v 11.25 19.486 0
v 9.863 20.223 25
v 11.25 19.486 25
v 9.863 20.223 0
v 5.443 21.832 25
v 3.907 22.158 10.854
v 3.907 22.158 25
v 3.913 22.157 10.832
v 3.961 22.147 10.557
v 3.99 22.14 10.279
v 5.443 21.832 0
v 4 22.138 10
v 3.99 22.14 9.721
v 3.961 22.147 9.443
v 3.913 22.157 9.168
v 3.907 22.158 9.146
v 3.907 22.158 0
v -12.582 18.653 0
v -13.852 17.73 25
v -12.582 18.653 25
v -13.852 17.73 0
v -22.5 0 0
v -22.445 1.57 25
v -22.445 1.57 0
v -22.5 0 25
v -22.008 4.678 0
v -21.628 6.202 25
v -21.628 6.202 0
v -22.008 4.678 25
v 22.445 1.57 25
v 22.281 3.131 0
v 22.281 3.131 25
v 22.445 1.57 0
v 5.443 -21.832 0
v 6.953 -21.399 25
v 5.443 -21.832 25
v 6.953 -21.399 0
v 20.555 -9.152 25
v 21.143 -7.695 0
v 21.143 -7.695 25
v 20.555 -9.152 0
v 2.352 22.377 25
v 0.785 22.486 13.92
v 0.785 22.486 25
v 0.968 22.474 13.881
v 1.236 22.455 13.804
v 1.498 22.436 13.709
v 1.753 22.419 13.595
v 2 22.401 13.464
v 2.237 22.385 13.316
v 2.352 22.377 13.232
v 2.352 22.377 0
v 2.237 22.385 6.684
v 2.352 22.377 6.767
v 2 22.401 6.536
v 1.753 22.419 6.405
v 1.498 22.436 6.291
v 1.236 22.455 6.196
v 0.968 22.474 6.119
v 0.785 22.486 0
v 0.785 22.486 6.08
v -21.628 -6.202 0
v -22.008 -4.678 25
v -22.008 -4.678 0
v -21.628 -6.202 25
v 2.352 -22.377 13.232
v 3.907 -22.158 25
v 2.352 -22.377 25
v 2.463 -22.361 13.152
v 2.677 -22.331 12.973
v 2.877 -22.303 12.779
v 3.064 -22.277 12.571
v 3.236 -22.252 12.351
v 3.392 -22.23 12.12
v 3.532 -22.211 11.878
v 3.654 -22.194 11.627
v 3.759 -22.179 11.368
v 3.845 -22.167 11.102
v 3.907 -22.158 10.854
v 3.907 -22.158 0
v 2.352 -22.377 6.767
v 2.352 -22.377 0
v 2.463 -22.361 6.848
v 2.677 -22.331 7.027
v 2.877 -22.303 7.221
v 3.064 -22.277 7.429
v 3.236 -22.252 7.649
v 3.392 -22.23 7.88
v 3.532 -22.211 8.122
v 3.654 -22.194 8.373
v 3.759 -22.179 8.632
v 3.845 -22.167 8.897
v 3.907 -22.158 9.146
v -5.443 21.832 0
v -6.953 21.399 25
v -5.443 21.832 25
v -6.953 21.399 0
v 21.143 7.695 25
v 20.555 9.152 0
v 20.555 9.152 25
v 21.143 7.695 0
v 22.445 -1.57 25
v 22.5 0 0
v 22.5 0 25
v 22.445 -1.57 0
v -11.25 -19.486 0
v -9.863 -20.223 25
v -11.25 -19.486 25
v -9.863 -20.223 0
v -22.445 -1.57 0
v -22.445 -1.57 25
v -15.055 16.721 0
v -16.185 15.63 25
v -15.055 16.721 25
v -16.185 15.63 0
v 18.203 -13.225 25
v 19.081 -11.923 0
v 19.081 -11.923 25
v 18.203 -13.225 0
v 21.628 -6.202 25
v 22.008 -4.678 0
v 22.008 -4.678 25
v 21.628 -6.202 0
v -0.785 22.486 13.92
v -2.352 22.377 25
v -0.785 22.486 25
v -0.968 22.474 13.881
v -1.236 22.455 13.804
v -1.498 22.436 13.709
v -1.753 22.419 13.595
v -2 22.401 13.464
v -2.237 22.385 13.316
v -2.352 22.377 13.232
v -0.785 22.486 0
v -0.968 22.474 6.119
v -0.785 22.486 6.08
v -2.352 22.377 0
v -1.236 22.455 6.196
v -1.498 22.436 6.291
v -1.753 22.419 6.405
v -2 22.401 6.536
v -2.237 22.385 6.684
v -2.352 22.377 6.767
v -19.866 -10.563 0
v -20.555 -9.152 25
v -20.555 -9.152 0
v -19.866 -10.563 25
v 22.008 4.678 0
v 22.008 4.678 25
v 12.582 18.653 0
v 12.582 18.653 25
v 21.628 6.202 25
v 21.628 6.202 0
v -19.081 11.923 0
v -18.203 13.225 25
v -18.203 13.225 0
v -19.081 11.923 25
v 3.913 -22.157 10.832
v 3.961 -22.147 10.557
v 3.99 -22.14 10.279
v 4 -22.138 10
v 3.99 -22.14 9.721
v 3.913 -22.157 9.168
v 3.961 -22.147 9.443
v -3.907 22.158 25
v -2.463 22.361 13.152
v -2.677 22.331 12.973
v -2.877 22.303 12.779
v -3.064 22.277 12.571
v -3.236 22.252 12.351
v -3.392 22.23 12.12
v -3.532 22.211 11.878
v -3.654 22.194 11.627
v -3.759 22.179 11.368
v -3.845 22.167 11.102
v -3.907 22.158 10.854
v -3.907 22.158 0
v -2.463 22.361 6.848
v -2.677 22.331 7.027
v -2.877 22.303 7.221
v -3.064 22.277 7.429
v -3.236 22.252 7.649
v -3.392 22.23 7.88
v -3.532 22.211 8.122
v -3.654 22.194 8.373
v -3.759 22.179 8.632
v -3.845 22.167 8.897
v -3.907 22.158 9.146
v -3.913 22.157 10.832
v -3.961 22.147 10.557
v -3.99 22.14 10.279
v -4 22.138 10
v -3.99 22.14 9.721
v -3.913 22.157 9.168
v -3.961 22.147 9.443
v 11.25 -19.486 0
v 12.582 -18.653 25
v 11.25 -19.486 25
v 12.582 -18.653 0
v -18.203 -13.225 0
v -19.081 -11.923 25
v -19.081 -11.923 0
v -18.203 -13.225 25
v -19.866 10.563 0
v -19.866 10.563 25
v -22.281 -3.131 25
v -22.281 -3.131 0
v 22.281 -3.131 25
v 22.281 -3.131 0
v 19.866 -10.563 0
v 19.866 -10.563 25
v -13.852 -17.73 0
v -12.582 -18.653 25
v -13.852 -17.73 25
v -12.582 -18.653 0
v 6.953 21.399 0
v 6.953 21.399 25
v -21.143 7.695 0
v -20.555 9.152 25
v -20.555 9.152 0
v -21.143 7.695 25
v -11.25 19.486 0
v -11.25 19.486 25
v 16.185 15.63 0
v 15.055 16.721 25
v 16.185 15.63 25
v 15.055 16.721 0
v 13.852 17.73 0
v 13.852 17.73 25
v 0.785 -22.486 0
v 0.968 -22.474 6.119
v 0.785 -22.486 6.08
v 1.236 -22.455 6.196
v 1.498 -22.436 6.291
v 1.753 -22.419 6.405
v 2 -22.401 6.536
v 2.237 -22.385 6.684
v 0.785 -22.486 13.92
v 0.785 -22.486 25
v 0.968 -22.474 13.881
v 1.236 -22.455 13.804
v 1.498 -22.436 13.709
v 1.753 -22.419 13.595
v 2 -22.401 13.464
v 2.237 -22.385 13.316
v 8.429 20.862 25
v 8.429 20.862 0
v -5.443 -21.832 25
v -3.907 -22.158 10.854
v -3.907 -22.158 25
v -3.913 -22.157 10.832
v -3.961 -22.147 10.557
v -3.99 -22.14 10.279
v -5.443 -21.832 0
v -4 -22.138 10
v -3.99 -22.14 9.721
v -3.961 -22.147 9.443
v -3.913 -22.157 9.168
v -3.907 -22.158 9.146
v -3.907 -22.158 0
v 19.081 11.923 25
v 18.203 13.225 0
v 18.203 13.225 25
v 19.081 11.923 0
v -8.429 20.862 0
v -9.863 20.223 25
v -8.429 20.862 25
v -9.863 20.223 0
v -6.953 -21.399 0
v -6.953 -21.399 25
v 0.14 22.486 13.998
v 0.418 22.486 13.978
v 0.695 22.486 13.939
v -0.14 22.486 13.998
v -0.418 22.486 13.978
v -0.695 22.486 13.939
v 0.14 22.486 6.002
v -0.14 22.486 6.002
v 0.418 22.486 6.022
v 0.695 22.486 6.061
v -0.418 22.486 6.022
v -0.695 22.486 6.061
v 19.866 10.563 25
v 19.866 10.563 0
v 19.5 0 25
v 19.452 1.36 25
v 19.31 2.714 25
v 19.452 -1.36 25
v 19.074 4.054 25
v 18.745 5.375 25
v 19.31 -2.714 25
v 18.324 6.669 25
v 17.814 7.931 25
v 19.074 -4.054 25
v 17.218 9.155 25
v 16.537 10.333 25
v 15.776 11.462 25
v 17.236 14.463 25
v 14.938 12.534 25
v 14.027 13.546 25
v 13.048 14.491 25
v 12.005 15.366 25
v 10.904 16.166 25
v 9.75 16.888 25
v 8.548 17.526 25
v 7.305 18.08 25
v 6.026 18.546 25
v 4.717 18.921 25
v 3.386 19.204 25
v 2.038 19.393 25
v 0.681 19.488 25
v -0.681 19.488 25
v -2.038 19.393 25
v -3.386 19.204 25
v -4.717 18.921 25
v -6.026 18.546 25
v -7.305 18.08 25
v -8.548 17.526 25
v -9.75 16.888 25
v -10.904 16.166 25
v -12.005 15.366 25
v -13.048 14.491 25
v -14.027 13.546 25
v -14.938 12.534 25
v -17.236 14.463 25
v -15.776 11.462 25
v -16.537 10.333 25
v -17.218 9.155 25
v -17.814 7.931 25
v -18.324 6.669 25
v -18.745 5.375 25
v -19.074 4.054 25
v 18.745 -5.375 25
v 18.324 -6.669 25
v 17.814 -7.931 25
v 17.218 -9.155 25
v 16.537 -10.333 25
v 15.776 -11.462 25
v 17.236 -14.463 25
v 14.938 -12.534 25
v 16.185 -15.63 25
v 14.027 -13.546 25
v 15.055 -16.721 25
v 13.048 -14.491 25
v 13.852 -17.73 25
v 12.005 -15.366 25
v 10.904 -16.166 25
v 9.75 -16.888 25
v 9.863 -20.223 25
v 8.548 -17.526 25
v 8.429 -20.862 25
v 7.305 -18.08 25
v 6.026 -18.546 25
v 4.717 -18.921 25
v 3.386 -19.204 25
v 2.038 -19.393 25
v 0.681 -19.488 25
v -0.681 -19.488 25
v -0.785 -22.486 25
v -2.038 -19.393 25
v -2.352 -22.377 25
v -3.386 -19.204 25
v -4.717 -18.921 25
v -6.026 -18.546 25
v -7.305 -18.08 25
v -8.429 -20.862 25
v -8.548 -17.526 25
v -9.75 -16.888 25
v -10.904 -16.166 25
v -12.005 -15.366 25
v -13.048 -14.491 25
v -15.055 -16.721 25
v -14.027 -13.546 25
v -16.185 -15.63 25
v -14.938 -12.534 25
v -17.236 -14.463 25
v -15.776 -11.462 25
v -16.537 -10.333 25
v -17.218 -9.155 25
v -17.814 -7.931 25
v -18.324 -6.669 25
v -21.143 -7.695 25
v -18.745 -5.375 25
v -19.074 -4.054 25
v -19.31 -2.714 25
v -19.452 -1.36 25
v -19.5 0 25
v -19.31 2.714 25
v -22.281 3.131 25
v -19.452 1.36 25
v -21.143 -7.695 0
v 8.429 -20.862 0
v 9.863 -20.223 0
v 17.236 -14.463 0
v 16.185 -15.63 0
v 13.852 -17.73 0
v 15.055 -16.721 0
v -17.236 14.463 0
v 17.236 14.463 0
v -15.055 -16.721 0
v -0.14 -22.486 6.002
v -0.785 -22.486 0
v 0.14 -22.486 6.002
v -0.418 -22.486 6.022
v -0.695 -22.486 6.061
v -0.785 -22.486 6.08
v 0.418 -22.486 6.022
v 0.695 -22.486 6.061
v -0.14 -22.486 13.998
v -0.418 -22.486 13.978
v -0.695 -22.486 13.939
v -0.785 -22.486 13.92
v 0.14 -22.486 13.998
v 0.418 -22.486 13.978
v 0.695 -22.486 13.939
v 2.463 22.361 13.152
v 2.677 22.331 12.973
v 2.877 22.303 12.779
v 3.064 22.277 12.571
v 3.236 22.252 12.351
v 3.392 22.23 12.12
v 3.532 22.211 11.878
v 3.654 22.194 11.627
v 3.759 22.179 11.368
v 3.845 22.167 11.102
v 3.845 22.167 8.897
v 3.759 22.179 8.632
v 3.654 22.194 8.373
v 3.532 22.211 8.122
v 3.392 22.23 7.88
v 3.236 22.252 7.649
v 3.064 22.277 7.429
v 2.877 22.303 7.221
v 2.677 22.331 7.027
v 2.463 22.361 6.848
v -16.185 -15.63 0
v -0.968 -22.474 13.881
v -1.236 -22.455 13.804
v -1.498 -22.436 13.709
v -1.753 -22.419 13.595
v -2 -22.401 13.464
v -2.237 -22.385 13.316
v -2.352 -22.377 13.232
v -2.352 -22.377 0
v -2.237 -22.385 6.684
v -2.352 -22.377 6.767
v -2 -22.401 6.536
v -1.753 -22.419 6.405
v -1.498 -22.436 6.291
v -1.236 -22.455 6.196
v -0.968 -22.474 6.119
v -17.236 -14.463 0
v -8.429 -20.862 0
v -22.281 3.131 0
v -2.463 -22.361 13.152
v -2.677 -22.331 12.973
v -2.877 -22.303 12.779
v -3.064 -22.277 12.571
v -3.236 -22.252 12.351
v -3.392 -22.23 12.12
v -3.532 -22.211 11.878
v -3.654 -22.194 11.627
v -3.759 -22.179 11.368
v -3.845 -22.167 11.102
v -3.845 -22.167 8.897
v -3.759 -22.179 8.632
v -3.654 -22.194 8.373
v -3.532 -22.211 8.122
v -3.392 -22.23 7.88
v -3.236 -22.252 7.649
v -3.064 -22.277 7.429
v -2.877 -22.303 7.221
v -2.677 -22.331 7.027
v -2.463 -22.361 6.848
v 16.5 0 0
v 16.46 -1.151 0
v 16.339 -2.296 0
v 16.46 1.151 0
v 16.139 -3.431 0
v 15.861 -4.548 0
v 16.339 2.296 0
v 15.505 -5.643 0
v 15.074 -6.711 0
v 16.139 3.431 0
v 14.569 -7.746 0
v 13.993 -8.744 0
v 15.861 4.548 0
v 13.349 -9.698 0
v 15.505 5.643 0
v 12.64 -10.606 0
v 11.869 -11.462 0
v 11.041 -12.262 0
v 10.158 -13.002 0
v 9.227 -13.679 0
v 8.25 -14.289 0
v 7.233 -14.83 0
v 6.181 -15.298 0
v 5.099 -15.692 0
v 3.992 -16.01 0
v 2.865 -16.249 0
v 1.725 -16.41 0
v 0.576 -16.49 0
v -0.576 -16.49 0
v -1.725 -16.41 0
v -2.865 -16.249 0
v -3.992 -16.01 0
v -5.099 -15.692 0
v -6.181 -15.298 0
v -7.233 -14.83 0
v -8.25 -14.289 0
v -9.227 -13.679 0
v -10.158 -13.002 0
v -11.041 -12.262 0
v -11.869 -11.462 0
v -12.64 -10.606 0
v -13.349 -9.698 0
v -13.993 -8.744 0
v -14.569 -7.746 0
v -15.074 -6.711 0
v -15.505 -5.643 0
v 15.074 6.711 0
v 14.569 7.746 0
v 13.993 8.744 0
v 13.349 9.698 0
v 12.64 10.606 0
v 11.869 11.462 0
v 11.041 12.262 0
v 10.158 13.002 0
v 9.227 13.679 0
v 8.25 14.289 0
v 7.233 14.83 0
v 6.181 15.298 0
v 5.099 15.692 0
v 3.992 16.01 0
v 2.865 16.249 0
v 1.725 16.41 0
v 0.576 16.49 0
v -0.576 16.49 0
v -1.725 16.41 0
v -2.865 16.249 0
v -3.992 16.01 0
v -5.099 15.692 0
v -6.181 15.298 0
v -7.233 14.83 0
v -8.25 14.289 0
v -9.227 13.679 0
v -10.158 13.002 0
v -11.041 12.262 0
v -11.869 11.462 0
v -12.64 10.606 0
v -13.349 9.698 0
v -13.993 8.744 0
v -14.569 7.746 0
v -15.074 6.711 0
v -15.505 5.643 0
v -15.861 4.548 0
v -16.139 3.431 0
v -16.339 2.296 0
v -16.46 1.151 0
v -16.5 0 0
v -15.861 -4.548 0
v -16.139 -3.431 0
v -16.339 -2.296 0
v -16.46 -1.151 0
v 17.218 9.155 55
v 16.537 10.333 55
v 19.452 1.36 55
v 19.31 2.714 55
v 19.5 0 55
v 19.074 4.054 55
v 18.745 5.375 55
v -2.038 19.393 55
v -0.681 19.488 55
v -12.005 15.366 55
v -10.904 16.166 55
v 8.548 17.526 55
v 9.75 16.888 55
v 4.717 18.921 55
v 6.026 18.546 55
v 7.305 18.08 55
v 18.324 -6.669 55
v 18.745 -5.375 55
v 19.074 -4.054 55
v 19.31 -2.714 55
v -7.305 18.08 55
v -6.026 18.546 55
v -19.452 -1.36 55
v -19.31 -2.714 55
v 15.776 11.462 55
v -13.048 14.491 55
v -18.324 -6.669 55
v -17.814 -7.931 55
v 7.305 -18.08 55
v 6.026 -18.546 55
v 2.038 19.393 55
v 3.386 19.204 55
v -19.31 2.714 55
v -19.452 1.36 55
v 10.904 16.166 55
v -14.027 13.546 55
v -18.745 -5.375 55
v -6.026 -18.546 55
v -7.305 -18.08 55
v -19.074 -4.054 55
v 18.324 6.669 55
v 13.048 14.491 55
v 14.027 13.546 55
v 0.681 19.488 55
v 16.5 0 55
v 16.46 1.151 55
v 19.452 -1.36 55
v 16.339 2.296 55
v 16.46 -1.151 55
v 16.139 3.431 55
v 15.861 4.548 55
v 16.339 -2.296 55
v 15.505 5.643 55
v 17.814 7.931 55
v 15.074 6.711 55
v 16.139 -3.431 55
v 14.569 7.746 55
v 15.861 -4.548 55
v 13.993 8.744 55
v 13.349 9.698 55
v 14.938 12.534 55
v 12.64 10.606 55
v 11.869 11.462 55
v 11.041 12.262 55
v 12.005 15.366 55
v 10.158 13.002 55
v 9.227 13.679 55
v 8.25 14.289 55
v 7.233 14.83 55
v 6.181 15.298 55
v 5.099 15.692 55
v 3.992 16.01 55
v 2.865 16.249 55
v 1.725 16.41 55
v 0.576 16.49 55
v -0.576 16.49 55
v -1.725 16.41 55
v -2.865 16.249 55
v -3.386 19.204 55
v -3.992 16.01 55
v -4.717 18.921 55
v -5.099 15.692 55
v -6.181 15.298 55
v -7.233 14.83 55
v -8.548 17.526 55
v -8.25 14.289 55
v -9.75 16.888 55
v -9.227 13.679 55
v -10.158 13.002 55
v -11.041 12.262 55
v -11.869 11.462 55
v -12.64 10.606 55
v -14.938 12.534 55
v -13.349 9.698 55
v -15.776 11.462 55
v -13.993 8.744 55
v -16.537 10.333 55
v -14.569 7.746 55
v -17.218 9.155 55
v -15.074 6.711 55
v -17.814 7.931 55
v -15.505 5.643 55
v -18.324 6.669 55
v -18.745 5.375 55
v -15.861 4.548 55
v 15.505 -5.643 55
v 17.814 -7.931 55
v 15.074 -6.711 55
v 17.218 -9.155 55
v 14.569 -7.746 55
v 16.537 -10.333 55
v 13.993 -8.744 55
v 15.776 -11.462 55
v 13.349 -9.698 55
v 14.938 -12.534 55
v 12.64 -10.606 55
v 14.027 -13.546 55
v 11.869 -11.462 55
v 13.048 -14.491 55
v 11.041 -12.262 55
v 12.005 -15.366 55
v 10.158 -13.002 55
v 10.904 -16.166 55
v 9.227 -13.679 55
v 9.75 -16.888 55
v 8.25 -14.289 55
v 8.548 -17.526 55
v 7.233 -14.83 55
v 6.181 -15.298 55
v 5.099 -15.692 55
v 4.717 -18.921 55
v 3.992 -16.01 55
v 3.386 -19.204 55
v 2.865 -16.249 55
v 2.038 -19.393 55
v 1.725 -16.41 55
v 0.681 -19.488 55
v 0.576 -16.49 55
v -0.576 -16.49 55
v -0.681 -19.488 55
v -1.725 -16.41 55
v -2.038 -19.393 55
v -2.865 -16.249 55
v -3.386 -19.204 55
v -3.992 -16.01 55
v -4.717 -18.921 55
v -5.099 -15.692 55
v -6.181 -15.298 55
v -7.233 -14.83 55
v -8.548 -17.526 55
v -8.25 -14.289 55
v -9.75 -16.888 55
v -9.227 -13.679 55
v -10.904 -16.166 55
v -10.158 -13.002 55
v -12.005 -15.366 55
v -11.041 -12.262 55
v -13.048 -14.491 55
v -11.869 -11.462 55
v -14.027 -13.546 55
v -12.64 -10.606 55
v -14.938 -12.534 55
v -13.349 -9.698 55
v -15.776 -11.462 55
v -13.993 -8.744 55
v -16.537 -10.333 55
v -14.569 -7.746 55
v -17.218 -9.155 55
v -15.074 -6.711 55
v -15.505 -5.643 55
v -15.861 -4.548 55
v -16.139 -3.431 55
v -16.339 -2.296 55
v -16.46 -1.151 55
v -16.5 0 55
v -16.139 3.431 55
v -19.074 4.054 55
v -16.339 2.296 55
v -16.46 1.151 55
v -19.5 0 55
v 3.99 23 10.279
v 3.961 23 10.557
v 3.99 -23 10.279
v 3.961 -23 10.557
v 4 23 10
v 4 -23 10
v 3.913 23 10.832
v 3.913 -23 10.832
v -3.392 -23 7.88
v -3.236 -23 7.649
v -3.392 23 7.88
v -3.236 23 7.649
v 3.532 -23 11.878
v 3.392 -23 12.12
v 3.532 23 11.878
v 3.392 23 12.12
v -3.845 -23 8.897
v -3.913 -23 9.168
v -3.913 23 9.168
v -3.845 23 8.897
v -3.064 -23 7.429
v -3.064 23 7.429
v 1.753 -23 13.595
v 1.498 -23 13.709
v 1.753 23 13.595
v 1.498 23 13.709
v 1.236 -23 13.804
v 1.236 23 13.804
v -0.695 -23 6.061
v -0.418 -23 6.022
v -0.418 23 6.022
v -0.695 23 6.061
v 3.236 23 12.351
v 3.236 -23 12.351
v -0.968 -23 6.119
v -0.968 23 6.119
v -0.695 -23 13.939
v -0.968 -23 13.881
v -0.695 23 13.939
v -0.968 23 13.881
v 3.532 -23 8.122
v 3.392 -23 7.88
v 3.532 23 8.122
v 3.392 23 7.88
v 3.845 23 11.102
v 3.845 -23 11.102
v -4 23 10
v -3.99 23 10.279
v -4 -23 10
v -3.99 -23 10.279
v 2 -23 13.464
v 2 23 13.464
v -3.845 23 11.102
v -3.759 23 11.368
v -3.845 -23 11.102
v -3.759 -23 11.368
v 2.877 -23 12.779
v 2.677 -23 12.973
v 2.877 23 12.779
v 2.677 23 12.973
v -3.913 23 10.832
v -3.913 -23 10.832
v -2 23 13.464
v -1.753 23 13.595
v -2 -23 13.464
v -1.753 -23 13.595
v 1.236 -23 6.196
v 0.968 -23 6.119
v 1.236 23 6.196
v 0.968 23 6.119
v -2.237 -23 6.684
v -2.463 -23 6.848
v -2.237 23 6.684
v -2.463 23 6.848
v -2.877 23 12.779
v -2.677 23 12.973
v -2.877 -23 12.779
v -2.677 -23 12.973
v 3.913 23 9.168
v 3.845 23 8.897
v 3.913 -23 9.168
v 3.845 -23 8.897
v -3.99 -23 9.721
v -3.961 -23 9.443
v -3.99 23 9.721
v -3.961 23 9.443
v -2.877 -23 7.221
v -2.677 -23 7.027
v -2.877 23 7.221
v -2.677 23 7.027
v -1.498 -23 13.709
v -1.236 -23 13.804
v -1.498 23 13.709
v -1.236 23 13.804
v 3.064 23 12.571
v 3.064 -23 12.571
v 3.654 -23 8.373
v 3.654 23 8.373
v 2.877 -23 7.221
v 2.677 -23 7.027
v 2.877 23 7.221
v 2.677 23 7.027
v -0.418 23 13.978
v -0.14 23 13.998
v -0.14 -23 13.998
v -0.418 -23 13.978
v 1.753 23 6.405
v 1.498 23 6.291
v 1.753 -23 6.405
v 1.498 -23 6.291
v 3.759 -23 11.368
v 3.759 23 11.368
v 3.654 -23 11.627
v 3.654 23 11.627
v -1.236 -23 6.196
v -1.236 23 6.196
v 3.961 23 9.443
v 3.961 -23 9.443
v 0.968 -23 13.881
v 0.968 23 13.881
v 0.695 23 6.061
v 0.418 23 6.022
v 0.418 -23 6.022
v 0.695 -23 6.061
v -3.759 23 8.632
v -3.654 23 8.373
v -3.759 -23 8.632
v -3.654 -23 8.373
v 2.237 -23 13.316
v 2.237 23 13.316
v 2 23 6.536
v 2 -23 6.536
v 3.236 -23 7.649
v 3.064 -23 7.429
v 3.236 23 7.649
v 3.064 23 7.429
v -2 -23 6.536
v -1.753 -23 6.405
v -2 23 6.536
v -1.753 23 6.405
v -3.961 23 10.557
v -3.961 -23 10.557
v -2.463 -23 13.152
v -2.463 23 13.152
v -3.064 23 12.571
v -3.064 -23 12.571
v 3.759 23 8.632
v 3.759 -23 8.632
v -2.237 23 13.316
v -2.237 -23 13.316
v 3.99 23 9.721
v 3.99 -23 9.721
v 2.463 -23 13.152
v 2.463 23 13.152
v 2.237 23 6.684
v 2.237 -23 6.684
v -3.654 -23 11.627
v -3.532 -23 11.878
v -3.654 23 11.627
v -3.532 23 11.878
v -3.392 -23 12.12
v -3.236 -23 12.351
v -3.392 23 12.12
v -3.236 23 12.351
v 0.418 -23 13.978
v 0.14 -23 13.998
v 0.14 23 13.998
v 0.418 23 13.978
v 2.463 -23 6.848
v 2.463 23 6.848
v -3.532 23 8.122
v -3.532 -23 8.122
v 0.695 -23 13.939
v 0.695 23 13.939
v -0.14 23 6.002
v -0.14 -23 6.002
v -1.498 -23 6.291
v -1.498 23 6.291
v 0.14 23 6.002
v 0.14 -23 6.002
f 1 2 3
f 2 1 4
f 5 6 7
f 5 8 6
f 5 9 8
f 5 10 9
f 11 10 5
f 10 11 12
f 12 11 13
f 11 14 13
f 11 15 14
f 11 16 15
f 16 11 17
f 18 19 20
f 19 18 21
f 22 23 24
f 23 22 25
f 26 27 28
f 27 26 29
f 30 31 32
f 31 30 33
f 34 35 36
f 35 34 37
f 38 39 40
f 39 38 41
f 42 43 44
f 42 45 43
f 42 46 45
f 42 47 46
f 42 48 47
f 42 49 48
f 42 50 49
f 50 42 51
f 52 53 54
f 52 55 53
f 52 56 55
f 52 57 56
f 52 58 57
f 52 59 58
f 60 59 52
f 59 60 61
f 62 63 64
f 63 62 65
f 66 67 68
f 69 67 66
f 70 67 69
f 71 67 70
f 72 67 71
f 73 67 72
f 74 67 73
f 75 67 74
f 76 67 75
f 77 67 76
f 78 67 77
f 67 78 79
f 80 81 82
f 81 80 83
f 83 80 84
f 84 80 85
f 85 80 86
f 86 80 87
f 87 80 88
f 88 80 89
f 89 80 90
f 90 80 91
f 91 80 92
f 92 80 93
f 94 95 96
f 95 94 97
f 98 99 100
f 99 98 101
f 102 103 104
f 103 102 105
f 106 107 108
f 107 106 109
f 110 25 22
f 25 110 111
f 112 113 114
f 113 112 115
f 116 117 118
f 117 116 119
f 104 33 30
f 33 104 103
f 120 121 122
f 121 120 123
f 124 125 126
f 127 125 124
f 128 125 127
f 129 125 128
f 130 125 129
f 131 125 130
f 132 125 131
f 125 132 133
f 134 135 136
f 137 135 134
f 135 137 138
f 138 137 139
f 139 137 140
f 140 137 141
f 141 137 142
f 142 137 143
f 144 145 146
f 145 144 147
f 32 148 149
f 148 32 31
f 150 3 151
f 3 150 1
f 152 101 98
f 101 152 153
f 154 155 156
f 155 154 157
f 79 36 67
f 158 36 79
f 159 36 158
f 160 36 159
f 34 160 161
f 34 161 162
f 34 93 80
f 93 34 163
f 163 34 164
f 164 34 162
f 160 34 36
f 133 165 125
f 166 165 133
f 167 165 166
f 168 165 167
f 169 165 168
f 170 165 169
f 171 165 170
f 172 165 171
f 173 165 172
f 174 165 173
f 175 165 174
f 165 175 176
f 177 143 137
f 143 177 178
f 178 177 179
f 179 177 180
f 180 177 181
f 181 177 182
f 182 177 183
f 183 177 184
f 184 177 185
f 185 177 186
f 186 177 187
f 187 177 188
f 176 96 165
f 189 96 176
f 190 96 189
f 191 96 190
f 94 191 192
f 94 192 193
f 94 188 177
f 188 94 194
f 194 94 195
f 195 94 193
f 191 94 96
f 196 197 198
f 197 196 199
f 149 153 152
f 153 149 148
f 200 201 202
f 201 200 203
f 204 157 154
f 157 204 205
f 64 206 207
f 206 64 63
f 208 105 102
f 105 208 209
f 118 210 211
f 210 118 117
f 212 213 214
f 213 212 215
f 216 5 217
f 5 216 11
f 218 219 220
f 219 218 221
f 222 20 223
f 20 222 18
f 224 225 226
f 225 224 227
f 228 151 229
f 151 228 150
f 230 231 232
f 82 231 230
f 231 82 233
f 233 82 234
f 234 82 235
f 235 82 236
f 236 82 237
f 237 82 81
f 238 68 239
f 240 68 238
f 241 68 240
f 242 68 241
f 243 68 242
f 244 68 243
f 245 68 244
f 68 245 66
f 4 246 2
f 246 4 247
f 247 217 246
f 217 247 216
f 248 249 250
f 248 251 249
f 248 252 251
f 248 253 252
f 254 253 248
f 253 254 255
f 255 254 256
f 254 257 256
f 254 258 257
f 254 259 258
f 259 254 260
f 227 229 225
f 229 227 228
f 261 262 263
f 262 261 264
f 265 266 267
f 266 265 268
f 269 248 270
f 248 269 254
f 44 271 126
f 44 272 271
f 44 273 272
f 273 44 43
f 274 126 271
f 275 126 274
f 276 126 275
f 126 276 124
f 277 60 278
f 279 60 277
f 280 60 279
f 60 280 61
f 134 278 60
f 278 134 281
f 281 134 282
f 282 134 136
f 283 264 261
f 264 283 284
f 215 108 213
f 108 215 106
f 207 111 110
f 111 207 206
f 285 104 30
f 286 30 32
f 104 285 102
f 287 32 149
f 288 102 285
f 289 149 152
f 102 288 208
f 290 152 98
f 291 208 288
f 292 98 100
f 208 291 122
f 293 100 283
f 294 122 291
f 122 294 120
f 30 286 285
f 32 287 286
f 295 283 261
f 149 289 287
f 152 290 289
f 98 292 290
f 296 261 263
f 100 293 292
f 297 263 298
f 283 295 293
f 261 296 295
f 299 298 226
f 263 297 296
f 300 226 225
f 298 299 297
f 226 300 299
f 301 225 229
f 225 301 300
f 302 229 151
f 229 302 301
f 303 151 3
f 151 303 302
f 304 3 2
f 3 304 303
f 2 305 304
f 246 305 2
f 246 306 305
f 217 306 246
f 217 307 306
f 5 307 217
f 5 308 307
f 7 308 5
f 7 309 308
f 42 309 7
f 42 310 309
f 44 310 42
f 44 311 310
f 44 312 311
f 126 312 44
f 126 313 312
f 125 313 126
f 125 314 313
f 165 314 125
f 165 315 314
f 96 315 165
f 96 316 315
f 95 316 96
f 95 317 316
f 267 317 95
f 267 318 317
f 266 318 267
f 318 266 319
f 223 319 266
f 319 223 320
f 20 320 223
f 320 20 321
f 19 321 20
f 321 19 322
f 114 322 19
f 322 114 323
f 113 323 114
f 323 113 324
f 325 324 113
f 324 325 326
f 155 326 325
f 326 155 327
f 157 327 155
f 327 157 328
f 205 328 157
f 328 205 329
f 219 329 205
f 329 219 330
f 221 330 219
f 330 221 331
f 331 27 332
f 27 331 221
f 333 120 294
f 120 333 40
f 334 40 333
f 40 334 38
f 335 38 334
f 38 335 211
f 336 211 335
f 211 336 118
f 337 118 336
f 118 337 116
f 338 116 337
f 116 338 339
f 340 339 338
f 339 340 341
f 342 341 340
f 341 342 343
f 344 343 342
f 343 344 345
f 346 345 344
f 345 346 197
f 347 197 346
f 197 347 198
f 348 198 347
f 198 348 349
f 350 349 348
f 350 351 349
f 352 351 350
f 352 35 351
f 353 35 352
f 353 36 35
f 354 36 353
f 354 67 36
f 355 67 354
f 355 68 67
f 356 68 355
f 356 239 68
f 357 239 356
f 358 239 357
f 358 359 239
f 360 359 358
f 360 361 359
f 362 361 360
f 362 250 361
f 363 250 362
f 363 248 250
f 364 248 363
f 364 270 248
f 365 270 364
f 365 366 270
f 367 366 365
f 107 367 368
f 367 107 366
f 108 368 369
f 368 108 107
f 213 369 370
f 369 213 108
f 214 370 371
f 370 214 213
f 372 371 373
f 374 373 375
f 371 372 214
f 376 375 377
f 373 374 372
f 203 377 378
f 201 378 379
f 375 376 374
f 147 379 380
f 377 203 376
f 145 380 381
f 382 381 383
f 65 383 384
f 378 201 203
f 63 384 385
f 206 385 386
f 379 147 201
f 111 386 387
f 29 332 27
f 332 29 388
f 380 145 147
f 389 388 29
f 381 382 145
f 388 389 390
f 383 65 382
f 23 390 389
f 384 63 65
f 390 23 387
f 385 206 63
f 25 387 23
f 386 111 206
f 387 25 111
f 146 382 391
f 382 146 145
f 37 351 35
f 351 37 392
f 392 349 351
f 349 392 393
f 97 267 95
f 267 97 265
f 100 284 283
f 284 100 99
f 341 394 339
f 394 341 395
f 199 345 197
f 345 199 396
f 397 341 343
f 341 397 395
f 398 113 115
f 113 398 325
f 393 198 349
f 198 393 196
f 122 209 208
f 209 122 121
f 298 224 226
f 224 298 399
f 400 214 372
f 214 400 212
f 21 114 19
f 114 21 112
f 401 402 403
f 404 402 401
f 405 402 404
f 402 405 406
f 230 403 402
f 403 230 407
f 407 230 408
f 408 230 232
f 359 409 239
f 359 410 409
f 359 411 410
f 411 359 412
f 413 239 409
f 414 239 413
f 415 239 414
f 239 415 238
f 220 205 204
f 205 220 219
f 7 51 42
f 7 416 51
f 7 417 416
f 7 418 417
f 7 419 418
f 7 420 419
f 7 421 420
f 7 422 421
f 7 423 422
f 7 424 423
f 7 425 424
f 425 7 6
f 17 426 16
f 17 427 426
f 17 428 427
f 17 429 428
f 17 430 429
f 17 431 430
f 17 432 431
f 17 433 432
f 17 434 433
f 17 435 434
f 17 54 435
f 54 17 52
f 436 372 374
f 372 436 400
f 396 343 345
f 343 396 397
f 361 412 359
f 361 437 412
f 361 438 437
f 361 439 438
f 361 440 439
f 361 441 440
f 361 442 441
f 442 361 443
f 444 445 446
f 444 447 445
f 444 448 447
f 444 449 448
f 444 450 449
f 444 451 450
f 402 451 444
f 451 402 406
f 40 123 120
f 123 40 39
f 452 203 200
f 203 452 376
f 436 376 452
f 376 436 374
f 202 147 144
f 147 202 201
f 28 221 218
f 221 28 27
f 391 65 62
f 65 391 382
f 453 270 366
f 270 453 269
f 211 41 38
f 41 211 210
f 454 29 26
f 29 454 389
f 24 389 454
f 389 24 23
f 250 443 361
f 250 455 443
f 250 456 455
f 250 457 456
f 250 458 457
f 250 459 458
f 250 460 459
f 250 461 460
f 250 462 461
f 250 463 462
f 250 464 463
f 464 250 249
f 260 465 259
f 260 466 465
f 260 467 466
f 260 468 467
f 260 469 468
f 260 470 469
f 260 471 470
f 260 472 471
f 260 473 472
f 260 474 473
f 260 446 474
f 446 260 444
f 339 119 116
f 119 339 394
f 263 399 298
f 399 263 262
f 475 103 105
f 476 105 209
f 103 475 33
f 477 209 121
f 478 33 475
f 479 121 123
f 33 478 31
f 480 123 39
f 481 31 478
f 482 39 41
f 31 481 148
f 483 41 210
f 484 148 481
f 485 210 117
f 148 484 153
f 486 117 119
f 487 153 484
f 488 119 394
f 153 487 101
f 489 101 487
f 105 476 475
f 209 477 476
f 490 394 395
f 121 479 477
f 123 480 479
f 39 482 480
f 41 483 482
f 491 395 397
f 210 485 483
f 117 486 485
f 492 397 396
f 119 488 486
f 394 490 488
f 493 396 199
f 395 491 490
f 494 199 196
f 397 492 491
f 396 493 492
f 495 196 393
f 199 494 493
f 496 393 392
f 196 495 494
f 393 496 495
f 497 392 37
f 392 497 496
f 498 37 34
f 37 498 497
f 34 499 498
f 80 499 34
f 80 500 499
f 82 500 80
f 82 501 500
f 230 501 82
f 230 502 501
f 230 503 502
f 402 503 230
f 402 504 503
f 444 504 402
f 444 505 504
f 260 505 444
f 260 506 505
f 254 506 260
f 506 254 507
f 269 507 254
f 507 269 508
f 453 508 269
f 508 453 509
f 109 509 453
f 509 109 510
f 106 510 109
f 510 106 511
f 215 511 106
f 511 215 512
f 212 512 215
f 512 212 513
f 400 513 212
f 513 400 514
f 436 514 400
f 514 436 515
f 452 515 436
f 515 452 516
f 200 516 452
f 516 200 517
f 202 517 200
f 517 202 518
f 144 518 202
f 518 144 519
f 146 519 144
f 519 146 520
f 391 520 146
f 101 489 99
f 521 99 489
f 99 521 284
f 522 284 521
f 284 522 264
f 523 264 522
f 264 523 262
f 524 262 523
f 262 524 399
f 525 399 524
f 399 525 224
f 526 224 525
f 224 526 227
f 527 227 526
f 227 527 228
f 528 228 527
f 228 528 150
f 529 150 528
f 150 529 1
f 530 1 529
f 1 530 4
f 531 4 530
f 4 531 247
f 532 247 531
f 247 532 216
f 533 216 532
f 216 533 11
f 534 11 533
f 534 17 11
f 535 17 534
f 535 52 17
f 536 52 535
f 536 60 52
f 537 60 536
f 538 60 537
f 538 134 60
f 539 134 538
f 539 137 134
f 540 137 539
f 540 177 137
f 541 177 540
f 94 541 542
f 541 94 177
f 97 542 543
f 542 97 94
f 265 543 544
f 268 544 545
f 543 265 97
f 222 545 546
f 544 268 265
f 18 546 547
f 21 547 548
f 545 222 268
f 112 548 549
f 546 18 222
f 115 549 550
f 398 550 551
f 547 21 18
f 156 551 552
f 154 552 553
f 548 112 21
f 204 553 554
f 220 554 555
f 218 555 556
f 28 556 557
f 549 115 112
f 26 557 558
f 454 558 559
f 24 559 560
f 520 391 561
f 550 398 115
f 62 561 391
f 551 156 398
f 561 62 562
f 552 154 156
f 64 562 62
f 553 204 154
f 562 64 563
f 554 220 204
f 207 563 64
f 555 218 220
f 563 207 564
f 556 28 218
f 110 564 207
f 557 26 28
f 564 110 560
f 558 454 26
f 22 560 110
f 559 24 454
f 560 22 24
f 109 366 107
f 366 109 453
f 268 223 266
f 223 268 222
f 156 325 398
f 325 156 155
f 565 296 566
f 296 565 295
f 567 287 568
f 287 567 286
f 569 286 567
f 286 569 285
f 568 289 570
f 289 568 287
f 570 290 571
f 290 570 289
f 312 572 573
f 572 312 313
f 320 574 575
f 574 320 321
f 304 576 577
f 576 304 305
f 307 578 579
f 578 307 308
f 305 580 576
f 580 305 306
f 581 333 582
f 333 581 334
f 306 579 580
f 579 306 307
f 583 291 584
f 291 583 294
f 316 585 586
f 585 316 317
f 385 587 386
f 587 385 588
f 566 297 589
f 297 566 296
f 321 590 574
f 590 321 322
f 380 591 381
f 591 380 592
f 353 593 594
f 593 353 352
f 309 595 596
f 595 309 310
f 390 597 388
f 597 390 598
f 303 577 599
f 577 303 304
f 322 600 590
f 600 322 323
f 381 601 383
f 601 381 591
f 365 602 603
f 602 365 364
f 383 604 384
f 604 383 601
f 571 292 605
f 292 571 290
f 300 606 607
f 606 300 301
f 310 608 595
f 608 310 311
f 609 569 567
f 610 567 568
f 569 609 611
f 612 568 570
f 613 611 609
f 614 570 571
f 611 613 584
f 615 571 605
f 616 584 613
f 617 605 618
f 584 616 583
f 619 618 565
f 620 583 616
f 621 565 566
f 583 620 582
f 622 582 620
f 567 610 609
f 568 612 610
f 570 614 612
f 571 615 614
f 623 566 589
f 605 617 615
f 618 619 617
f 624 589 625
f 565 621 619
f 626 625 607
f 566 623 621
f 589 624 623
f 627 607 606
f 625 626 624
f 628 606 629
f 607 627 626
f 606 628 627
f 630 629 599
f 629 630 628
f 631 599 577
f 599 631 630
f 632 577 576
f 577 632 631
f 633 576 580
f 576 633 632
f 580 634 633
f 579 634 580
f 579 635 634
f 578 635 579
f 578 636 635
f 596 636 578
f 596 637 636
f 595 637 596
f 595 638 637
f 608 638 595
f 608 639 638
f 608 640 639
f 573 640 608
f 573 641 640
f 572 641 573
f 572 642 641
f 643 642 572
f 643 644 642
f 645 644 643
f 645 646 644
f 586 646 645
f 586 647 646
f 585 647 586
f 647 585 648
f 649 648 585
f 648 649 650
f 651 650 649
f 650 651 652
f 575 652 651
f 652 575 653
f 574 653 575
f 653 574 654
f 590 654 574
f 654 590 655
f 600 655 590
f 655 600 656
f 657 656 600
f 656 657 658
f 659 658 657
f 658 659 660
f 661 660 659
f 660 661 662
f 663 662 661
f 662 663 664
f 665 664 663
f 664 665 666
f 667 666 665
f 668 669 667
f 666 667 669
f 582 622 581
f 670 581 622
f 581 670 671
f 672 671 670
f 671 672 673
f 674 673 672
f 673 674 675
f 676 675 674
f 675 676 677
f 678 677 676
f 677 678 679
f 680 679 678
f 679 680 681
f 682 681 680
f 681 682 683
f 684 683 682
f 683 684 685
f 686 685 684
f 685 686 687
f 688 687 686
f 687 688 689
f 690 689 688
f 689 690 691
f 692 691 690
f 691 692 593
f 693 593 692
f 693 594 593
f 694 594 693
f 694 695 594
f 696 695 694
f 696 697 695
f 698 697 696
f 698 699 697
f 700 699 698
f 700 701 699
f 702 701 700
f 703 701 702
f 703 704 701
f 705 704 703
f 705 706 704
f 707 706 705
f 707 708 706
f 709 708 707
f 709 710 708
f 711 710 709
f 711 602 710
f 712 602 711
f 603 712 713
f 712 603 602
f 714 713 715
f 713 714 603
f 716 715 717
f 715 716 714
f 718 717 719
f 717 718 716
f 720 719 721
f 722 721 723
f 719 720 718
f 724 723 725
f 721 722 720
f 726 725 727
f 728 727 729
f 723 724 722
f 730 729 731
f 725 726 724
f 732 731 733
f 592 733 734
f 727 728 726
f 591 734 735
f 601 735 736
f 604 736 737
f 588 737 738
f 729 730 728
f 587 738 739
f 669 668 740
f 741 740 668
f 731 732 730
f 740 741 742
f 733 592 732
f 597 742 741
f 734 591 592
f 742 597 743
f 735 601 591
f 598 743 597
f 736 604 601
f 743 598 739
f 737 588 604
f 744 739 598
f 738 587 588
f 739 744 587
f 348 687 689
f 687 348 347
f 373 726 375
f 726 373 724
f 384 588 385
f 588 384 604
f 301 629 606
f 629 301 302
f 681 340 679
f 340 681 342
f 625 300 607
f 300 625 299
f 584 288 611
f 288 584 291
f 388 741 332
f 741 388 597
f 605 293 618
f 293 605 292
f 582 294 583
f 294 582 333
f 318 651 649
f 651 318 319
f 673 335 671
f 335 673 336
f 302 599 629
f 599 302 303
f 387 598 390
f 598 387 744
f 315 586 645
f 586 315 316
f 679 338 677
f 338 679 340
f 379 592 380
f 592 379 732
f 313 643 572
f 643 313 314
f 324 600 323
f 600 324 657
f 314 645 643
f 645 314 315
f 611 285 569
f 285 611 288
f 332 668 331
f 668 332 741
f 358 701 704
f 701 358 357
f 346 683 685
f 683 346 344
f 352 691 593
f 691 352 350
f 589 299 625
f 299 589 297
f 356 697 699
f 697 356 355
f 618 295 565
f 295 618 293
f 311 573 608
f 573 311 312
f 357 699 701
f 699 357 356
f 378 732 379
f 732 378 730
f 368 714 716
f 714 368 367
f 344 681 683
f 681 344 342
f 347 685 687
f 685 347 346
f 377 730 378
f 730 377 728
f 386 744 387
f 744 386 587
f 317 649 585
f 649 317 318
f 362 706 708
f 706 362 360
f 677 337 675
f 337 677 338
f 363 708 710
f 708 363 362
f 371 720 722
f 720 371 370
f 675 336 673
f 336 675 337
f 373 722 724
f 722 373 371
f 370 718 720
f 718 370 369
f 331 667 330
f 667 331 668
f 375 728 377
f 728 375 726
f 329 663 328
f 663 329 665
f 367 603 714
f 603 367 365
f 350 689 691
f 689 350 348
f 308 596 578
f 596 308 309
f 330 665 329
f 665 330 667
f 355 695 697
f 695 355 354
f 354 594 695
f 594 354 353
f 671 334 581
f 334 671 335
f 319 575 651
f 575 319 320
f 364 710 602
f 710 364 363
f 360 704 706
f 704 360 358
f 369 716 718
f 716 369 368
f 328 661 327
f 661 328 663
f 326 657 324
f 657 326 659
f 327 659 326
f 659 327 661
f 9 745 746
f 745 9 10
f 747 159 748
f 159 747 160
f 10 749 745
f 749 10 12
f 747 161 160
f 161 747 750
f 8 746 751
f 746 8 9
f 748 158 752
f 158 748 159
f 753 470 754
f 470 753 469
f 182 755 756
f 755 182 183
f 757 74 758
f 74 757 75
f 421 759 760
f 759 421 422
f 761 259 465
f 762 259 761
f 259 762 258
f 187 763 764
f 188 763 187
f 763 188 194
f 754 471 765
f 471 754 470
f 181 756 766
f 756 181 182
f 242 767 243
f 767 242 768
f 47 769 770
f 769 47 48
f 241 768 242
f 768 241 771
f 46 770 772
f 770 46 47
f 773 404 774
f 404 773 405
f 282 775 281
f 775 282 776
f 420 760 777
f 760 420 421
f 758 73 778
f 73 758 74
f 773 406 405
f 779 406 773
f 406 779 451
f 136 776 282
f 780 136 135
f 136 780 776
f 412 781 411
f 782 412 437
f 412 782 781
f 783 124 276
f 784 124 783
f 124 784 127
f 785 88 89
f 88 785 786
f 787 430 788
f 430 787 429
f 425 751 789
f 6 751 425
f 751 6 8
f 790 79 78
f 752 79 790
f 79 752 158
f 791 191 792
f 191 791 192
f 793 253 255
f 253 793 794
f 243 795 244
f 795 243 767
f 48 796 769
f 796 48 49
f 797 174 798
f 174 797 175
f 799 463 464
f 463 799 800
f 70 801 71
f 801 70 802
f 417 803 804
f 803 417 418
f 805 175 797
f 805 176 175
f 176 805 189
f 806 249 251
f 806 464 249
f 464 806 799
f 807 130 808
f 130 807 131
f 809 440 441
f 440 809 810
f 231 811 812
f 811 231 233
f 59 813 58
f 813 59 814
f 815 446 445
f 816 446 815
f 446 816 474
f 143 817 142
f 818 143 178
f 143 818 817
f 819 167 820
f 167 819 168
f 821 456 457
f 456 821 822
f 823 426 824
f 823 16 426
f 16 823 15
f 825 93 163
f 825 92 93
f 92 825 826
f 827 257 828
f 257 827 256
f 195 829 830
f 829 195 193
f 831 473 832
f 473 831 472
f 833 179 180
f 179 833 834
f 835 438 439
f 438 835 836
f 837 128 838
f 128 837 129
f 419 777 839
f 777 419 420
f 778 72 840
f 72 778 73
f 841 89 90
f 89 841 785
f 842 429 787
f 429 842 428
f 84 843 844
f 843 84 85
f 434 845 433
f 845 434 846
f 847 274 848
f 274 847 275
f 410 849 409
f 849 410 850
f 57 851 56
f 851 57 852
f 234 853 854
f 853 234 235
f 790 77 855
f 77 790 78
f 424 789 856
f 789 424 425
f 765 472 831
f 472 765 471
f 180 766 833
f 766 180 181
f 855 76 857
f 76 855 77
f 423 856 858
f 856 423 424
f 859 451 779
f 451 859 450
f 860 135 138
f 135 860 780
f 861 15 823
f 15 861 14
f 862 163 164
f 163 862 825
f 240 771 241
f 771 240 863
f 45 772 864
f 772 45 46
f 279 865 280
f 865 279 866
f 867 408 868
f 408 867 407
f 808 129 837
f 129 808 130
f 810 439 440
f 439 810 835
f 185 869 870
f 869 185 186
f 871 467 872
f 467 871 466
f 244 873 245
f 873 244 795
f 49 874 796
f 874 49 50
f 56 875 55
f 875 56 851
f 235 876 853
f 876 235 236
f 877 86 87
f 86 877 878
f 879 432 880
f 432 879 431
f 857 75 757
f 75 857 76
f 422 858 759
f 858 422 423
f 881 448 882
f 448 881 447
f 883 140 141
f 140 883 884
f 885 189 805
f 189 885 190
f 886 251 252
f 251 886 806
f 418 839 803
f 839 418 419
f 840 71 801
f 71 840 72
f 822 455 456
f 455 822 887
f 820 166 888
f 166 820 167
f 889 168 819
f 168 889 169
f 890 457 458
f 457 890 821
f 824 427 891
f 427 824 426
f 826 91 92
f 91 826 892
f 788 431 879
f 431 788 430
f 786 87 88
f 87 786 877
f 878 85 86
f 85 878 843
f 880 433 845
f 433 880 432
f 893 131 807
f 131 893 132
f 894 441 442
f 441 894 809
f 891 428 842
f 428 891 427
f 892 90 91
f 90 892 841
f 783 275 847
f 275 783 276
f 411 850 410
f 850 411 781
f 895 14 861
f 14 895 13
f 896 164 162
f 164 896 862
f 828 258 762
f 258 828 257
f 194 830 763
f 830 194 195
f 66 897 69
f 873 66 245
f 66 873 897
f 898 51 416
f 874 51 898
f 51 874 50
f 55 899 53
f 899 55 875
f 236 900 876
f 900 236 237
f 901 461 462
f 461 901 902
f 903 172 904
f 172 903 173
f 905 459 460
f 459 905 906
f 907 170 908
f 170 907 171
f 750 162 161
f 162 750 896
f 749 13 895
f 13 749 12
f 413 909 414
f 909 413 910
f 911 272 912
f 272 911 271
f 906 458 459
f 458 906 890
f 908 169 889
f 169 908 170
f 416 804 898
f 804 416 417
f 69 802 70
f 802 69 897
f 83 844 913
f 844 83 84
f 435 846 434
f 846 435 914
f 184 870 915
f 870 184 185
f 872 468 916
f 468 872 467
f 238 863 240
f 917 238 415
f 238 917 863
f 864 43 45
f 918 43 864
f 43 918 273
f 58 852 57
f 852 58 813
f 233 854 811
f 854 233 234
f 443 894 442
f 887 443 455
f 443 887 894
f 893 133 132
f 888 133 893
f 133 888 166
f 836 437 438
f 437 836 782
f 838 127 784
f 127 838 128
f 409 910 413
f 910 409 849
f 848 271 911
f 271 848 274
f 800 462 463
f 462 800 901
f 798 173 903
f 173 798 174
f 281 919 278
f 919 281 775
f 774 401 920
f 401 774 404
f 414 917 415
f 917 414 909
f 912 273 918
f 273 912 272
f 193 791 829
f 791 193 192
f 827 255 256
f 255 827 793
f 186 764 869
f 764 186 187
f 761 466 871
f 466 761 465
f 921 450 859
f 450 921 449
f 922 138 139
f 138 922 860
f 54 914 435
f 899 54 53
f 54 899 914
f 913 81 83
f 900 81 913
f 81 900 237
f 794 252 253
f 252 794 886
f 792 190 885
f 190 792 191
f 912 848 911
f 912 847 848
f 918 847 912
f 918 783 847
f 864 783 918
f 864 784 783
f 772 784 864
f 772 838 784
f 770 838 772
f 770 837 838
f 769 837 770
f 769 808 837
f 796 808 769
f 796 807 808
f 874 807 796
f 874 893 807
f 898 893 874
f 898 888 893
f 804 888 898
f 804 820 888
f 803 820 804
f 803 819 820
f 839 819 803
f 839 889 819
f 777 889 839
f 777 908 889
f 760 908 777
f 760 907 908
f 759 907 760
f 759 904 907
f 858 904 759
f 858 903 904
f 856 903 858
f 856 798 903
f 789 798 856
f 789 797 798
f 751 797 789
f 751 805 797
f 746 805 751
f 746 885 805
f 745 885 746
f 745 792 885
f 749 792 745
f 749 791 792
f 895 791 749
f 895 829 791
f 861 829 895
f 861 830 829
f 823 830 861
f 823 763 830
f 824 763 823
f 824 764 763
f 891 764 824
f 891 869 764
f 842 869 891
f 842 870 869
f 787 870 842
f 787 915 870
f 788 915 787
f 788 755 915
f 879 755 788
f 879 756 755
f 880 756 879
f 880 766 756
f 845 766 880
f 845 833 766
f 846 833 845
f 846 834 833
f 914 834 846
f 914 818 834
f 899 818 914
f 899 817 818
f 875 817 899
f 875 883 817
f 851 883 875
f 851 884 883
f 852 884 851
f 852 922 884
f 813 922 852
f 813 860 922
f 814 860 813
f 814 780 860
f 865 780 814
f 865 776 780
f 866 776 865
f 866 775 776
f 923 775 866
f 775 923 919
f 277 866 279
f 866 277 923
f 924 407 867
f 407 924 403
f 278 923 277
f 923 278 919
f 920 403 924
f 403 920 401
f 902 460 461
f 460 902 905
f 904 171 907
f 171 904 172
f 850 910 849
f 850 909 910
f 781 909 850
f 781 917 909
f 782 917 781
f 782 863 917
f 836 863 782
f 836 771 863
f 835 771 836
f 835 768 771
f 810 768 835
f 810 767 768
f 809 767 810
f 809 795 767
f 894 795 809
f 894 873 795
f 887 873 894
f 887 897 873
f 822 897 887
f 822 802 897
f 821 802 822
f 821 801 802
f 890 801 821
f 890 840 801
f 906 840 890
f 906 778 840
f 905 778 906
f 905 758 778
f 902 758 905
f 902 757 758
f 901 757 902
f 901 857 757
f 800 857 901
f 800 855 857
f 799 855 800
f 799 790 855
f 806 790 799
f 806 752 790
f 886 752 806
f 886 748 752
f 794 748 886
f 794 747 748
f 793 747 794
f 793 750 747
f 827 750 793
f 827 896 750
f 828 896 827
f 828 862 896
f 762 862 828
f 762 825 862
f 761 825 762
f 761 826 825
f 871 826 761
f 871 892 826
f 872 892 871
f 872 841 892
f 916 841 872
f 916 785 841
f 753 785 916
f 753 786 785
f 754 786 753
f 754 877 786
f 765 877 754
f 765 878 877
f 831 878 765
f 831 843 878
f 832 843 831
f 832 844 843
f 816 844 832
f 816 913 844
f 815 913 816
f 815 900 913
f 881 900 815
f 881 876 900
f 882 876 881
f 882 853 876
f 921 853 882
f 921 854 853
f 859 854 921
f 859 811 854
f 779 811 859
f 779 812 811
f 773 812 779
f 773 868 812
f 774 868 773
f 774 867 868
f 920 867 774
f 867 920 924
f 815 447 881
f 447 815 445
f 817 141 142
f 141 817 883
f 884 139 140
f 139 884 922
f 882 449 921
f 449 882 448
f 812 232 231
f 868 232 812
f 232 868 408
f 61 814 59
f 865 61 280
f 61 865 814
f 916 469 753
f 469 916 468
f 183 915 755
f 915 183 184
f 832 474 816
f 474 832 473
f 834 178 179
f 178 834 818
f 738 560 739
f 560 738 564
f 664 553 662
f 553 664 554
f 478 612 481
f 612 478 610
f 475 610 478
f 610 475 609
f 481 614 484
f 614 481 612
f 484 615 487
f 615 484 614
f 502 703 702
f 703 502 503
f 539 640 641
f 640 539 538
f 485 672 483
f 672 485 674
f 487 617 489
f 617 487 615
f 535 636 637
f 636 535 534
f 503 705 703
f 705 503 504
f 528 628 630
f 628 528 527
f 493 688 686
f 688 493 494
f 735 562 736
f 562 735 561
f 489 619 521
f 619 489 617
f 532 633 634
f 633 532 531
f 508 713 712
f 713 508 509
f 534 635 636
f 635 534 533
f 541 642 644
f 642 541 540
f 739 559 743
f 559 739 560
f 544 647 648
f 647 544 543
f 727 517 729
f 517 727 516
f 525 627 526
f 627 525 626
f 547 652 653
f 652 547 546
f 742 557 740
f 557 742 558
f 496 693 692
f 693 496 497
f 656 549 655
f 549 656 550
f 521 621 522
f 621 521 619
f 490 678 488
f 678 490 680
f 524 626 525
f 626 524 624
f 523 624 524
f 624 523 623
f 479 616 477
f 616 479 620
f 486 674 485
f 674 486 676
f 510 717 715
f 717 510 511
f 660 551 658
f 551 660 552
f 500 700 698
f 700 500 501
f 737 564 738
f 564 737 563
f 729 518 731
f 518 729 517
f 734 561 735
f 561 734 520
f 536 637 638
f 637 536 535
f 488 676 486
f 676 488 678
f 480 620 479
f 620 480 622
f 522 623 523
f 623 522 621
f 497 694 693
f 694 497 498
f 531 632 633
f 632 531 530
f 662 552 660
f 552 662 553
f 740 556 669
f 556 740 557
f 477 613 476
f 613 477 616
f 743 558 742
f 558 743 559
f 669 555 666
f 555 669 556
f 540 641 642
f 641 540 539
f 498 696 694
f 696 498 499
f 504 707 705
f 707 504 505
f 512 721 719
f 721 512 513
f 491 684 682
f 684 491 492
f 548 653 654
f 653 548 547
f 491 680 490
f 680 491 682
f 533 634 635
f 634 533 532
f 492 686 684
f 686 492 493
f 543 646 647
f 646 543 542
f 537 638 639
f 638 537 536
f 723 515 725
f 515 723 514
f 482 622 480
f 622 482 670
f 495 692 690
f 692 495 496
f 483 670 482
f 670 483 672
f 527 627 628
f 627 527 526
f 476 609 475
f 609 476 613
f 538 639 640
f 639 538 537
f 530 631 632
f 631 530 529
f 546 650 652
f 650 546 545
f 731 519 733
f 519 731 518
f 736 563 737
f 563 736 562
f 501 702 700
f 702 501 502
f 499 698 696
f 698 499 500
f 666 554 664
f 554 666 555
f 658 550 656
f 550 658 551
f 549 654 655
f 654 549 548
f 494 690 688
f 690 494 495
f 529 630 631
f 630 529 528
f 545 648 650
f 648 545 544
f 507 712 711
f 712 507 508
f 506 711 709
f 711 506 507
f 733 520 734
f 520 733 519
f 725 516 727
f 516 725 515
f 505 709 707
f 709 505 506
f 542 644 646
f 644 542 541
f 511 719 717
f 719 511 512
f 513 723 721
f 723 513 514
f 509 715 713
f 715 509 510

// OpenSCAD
/*
 
    Standerd hose adapter for BOSH GCM 8 SJL Miter Saw
    Anton Augustsson
    
*/

$fn=90;

mountLenght  = 25;
mountRadius  = 45/2;
hoseLenght   = 55;
hoseRadius   = 33/2;

hookRadius   = 8/2;
hookDistance = 10;

wallesRadius = hoseRadius+3;



difference() {
union(){
cylinder(
    h = mountLenght, 
    r = mountRadius);

cylinder(
    h = hoseLenght, 
    r = wallesRadius);

rotate([90,0,0])
translate([
    0,
    hookDistance,
    -mountRadius-0.5]) 
cylinder(
    h = mountRadius*2+1, 
    r = hookRadius);

}

cylinder(
    h = hoseLenght+1, 
    r = hoseRadius);

}
